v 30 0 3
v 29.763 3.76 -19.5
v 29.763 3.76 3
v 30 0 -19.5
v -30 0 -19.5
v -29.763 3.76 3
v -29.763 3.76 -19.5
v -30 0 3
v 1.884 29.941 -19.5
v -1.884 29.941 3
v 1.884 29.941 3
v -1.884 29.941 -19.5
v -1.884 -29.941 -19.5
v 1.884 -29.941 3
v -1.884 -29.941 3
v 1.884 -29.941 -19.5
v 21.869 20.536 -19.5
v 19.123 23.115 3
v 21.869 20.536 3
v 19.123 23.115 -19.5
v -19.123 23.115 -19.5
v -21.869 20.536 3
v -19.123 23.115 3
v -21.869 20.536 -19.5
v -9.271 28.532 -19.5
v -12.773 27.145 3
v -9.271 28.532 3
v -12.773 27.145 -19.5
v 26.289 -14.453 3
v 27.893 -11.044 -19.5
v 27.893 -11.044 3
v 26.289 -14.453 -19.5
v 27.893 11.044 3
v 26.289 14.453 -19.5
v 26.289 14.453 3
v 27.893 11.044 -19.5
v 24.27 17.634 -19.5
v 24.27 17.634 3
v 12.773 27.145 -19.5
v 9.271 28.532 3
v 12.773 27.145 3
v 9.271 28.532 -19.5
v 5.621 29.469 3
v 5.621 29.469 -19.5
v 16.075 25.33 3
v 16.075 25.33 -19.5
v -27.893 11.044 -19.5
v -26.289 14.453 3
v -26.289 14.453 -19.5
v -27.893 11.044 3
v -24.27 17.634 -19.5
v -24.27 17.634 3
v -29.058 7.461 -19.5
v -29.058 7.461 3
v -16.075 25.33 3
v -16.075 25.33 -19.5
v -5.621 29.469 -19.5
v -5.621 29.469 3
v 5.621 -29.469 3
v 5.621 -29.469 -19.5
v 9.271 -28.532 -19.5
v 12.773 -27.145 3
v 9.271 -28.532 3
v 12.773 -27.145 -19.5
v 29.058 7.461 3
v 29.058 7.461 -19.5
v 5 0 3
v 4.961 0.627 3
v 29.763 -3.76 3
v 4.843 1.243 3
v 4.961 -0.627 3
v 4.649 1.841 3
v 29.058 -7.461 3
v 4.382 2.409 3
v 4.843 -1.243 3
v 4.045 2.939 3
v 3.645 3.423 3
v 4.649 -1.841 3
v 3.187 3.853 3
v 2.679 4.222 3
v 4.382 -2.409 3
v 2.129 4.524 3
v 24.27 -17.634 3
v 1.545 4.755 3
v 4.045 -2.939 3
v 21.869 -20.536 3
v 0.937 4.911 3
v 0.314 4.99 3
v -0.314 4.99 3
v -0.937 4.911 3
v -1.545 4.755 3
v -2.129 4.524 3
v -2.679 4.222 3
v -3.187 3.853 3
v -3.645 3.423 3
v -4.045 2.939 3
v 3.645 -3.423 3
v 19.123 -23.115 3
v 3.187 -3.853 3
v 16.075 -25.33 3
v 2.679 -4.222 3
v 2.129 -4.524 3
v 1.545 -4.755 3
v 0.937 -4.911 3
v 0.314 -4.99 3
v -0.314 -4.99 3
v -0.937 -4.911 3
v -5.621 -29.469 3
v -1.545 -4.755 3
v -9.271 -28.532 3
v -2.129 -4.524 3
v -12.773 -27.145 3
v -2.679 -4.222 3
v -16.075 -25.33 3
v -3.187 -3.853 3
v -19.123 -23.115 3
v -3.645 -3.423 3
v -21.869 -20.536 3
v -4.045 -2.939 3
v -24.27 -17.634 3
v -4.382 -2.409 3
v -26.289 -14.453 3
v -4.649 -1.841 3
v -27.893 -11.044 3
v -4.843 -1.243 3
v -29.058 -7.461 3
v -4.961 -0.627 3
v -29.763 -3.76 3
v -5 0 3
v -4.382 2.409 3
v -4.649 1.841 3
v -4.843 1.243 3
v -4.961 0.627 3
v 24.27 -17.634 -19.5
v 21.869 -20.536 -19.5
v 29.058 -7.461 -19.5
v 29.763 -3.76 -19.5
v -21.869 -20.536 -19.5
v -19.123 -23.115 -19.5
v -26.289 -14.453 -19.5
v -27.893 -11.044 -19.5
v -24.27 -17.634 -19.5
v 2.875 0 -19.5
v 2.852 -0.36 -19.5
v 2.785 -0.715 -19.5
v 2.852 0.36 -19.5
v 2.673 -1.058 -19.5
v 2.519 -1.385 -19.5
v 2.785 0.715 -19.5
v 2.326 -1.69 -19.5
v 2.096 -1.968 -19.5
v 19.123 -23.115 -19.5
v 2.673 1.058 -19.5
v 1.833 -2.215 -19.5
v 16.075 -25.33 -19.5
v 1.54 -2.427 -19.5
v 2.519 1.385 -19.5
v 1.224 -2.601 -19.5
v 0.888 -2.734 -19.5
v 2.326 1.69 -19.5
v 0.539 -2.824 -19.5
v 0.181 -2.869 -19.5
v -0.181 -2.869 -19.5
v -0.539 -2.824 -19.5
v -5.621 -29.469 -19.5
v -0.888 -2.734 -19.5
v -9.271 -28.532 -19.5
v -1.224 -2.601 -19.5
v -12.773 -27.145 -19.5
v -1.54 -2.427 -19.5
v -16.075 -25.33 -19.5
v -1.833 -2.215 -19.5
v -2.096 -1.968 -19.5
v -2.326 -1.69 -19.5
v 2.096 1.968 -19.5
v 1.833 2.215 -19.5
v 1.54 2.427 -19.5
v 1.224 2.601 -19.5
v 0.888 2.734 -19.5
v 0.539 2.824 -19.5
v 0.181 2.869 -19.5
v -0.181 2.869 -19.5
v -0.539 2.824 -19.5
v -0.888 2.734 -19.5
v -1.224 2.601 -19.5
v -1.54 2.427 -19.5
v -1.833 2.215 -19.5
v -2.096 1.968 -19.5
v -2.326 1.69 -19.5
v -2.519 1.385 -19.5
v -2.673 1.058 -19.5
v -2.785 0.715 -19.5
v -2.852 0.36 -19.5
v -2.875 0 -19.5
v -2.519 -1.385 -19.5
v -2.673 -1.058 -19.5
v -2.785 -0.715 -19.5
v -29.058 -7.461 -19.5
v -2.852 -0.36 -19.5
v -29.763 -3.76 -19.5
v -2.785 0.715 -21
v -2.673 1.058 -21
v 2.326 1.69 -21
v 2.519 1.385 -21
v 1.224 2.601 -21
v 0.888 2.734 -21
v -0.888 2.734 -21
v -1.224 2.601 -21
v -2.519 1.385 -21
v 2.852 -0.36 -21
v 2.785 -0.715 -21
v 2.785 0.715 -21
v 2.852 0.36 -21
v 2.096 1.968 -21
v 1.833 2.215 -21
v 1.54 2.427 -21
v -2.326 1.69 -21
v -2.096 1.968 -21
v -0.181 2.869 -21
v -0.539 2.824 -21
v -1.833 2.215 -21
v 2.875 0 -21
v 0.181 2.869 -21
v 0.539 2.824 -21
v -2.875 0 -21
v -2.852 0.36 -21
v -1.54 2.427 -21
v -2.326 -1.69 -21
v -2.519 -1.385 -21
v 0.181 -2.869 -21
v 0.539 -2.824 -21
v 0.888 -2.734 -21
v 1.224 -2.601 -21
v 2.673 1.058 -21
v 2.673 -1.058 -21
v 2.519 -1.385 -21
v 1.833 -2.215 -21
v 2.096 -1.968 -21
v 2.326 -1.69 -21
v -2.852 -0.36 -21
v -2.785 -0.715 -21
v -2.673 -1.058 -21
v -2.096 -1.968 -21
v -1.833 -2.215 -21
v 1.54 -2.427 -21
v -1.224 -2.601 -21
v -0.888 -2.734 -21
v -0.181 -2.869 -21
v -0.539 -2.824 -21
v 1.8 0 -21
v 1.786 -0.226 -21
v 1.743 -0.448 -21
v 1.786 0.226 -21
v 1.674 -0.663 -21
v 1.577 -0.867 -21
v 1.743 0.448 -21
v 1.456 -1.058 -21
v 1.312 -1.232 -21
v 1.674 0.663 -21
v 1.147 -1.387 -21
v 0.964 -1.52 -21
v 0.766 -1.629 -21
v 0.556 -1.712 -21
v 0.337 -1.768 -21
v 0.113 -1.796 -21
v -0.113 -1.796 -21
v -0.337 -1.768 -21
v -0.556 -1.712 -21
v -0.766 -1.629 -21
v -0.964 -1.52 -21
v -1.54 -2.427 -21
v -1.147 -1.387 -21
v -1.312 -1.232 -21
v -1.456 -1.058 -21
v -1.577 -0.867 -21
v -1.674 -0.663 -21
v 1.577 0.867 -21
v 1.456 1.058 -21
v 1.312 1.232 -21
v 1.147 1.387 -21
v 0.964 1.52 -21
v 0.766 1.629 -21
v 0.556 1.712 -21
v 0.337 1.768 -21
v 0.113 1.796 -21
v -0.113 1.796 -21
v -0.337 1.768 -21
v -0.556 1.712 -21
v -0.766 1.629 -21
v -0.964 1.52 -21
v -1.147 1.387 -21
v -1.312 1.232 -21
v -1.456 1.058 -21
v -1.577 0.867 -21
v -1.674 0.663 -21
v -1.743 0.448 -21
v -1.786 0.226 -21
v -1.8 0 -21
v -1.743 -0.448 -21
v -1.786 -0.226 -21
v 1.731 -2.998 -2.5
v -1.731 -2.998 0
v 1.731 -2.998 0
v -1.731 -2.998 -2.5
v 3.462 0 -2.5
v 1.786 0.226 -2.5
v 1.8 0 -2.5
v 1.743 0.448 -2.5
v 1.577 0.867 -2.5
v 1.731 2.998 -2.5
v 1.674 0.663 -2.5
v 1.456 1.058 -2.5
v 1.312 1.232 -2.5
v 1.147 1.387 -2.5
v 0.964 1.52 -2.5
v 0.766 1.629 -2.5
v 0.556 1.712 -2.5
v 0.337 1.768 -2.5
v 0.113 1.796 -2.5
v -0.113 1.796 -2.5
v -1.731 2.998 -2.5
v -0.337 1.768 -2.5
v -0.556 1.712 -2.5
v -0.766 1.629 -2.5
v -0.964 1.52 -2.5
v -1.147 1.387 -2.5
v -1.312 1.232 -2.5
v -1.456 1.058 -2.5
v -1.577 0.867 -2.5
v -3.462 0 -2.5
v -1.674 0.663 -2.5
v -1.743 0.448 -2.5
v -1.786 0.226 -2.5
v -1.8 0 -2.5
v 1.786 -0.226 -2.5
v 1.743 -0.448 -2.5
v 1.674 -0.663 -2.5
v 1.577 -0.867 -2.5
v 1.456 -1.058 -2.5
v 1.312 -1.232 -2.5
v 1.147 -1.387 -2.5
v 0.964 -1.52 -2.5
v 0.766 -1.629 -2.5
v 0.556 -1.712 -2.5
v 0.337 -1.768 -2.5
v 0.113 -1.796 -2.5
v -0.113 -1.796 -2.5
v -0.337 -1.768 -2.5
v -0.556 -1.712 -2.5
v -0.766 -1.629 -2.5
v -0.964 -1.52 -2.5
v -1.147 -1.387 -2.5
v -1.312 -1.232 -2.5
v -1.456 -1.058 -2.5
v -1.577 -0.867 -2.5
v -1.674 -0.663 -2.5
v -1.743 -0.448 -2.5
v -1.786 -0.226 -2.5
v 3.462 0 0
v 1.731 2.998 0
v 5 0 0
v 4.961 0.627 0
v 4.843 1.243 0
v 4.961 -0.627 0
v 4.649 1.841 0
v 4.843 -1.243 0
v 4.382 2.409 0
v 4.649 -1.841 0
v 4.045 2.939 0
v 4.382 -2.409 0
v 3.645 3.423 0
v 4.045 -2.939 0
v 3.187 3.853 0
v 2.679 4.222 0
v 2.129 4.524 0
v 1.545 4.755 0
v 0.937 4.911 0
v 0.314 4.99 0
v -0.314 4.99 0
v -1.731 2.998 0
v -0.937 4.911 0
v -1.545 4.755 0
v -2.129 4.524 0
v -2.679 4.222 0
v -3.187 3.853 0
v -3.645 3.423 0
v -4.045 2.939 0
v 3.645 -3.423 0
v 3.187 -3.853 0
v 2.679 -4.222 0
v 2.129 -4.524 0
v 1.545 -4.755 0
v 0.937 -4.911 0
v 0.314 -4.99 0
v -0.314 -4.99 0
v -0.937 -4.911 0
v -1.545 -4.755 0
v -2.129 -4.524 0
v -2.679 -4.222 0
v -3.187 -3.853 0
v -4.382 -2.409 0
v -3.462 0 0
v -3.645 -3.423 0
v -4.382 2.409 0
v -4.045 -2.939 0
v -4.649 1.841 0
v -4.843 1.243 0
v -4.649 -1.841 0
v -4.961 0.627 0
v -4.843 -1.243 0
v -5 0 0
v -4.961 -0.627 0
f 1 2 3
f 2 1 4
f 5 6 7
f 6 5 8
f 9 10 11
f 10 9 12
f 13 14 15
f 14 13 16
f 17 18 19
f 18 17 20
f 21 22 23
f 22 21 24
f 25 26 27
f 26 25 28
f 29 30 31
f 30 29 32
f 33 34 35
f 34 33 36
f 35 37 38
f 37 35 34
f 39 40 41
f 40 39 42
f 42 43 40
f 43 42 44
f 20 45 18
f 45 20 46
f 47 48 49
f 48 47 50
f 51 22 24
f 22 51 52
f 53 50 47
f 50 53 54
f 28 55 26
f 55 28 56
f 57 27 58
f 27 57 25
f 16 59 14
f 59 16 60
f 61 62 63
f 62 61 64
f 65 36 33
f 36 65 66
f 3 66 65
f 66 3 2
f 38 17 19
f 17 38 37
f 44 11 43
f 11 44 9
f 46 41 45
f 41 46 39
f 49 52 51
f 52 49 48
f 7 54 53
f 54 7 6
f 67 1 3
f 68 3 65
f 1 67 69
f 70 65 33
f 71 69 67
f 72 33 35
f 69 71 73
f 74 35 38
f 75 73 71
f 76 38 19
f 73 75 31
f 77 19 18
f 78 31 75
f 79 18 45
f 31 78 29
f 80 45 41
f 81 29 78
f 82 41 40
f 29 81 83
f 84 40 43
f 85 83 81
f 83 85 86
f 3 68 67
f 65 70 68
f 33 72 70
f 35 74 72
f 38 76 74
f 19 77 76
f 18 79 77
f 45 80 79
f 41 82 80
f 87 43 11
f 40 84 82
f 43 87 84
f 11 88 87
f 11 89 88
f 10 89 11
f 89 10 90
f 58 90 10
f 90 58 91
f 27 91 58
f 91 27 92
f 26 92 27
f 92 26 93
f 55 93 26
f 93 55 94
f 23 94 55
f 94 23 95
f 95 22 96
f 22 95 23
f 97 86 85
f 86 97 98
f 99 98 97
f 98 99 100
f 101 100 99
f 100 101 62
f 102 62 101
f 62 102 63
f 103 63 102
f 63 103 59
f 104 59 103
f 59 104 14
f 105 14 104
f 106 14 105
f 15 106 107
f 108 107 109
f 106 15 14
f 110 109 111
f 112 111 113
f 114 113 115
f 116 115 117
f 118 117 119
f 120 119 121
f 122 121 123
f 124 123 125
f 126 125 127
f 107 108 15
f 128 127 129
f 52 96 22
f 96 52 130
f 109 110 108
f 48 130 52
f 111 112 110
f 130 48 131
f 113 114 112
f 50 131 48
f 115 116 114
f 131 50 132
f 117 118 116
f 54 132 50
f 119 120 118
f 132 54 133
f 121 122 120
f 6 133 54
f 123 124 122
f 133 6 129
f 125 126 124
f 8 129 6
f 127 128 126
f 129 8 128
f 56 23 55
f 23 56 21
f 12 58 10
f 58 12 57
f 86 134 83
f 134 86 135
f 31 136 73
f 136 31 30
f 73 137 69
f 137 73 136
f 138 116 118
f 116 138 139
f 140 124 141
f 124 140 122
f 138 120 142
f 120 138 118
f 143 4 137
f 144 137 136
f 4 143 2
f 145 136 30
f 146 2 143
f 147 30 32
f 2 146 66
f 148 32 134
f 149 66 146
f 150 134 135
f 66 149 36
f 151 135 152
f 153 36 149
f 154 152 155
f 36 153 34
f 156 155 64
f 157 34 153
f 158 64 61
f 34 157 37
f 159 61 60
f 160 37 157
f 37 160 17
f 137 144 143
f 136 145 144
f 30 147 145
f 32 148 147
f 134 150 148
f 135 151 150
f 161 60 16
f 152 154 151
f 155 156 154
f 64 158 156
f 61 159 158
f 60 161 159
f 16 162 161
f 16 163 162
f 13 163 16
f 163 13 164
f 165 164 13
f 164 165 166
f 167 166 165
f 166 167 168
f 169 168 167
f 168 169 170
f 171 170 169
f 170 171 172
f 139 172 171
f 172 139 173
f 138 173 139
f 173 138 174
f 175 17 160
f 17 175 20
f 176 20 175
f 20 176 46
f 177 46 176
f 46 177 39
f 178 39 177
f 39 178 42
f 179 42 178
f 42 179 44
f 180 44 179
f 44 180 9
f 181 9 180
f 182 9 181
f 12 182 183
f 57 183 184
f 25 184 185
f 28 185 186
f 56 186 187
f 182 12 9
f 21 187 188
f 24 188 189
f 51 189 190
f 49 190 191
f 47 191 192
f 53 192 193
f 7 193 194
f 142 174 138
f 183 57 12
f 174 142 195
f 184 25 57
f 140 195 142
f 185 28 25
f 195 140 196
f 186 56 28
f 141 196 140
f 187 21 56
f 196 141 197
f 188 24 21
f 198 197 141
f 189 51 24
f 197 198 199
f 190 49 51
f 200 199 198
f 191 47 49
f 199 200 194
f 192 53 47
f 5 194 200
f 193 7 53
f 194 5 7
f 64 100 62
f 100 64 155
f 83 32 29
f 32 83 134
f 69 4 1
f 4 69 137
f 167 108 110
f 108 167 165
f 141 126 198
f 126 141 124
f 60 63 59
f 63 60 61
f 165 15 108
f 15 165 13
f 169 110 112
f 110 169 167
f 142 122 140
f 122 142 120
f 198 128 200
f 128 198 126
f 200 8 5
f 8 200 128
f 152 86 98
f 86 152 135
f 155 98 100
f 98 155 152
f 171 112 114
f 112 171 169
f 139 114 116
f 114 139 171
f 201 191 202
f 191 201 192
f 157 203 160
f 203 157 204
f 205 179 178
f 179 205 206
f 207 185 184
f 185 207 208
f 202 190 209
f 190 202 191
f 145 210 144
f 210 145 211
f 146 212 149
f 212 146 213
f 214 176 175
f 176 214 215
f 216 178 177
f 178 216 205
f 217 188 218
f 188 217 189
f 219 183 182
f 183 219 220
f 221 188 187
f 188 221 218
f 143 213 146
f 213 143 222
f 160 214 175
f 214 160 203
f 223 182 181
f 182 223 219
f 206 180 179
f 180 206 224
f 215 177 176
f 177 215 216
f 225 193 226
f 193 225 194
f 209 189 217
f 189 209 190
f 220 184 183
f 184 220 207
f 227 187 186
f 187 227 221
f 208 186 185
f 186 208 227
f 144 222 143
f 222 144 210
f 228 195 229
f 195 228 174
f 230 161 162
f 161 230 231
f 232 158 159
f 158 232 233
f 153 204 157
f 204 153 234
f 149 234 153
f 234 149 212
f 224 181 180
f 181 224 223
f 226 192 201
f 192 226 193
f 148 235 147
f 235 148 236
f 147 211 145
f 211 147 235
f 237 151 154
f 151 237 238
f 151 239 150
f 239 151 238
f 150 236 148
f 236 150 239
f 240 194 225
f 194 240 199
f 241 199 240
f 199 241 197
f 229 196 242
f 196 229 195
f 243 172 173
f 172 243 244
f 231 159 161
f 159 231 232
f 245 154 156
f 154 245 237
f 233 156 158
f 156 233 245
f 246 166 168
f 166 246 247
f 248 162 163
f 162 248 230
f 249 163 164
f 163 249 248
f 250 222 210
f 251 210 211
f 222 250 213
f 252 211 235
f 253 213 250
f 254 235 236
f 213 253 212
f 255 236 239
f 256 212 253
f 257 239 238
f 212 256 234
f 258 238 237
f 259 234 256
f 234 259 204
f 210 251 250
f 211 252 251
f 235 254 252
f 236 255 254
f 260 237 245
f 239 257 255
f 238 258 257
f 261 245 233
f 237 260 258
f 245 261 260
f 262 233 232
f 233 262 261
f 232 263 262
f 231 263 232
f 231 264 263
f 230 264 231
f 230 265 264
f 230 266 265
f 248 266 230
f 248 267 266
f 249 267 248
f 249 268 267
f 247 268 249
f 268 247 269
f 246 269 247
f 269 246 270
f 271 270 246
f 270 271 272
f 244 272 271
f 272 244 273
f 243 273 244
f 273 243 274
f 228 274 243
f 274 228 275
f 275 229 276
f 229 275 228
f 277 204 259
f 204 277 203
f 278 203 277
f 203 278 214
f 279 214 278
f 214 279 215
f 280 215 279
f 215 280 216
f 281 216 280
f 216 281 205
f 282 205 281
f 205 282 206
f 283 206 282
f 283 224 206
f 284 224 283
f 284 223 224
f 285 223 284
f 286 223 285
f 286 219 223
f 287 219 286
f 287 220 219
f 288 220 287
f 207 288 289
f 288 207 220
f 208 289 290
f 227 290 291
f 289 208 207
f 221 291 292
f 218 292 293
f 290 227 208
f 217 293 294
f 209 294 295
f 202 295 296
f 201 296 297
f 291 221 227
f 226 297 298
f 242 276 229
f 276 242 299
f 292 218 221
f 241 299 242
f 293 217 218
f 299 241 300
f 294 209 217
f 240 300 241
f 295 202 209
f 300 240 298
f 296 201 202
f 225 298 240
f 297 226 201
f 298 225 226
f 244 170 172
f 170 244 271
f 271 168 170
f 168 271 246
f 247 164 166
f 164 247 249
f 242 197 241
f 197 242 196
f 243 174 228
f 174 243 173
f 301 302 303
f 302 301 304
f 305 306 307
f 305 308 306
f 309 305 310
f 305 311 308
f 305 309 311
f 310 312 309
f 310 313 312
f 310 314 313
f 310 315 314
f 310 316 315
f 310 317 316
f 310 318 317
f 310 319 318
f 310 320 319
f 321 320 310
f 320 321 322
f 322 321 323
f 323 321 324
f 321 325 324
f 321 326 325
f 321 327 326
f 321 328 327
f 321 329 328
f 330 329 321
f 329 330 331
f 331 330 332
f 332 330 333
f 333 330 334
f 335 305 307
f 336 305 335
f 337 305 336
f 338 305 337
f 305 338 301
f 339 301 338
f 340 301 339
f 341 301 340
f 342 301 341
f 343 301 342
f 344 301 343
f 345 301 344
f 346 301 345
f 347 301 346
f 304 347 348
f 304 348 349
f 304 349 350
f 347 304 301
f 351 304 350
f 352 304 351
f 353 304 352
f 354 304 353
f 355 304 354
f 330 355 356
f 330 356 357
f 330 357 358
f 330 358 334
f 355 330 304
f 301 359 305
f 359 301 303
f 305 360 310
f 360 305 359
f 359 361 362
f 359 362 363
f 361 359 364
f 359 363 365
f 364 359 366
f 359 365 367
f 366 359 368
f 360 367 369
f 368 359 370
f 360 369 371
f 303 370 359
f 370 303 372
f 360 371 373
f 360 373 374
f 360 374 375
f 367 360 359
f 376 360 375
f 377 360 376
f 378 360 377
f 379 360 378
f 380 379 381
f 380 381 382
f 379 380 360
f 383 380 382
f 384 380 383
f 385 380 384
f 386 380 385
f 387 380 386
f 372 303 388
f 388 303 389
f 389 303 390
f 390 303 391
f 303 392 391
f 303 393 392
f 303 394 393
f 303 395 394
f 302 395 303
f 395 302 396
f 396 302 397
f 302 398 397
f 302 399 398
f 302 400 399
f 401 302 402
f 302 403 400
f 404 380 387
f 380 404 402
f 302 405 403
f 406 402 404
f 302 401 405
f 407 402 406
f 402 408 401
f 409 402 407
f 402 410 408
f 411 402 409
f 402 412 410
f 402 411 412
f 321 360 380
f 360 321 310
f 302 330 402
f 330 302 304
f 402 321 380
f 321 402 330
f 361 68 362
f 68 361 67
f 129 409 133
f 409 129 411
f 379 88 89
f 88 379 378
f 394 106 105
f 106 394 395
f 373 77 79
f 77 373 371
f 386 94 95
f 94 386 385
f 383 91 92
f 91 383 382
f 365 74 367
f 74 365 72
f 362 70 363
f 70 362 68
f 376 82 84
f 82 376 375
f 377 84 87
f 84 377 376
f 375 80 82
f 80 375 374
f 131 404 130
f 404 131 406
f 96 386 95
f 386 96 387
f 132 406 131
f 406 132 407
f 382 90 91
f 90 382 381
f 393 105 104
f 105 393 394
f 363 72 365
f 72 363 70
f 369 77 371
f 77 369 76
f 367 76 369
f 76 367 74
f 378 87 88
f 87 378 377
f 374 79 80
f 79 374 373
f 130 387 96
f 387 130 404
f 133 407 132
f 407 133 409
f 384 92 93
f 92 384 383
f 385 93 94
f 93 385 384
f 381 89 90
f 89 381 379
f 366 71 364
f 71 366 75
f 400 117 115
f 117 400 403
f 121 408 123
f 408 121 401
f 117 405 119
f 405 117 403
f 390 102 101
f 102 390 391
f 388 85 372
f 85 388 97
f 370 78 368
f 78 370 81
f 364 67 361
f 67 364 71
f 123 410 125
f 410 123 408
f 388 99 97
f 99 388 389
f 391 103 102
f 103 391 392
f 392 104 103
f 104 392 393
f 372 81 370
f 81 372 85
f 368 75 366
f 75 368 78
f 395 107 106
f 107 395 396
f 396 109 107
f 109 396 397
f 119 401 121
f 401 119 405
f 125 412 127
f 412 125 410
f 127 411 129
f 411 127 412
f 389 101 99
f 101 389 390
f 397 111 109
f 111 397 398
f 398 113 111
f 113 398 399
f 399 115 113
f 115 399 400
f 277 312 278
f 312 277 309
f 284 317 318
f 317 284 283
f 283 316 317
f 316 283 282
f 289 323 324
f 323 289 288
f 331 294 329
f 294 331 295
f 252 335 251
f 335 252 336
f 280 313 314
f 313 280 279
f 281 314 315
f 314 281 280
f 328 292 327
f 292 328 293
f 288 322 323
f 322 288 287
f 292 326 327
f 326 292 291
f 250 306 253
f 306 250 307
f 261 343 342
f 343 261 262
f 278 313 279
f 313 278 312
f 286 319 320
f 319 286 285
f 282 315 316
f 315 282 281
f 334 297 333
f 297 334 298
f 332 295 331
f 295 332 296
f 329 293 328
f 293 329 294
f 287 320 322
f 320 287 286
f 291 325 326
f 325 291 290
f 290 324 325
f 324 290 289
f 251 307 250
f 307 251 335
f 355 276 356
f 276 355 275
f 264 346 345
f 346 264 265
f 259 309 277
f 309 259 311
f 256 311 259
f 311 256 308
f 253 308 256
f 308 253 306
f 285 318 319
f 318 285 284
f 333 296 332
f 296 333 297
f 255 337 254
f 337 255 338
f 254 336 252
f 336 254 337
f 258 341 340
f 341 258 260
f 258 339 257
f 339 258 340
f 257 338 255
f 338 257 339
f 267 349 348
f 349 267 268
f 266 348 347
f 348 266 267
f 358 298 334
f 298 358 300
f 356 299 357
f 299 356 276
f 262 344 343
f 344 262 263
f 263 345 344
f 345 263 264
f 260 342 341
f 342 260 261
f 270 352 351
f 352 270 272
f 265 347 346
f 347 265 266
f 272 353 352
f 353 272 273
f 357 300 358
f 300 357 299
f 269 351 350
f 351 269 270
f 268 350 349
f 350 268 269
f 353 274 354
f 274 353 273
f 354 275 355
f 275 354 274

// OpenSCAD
$fn = 50;


difference() {
	union() {
		translate(v = [0, 0, -19.5000000000]) {
			cylinder(h = 22.5000000000, r = 30.0000000000);
		}
		#translate(v = [0, 0, -21.0000000000]) {
			cylinder(h = 21, r = 2.8750000000);
		}
	}
	union() {
		translate(v = [0, 0, 0]) {
			rotate(a = [0, 0, 0]) {
				difference() {
					union() {
						translate(v = [0, 0, -2.5000000000]) {
							linear_extrude(height = 2.5000000000) {
								polygon(points = [[3.4620000000, 0.0000000000], [1.7310000000, 2.9981799479], [-1.7310000000, 2.9981799479], [-3.4620000000, 0.0000000000], [-1.7310000000, -2.9981799479], [1.7310000000, -2.9981799479]]);
							}
						}
					}
					union();
				}
			}
		}
		#cylinder(h = 3, r = 5.0000000000);
		#translate(v = [0, 0, -100.0000000000]) {
			cylinder(h = 200, r = 1.8000000000);
		}
	}
}
